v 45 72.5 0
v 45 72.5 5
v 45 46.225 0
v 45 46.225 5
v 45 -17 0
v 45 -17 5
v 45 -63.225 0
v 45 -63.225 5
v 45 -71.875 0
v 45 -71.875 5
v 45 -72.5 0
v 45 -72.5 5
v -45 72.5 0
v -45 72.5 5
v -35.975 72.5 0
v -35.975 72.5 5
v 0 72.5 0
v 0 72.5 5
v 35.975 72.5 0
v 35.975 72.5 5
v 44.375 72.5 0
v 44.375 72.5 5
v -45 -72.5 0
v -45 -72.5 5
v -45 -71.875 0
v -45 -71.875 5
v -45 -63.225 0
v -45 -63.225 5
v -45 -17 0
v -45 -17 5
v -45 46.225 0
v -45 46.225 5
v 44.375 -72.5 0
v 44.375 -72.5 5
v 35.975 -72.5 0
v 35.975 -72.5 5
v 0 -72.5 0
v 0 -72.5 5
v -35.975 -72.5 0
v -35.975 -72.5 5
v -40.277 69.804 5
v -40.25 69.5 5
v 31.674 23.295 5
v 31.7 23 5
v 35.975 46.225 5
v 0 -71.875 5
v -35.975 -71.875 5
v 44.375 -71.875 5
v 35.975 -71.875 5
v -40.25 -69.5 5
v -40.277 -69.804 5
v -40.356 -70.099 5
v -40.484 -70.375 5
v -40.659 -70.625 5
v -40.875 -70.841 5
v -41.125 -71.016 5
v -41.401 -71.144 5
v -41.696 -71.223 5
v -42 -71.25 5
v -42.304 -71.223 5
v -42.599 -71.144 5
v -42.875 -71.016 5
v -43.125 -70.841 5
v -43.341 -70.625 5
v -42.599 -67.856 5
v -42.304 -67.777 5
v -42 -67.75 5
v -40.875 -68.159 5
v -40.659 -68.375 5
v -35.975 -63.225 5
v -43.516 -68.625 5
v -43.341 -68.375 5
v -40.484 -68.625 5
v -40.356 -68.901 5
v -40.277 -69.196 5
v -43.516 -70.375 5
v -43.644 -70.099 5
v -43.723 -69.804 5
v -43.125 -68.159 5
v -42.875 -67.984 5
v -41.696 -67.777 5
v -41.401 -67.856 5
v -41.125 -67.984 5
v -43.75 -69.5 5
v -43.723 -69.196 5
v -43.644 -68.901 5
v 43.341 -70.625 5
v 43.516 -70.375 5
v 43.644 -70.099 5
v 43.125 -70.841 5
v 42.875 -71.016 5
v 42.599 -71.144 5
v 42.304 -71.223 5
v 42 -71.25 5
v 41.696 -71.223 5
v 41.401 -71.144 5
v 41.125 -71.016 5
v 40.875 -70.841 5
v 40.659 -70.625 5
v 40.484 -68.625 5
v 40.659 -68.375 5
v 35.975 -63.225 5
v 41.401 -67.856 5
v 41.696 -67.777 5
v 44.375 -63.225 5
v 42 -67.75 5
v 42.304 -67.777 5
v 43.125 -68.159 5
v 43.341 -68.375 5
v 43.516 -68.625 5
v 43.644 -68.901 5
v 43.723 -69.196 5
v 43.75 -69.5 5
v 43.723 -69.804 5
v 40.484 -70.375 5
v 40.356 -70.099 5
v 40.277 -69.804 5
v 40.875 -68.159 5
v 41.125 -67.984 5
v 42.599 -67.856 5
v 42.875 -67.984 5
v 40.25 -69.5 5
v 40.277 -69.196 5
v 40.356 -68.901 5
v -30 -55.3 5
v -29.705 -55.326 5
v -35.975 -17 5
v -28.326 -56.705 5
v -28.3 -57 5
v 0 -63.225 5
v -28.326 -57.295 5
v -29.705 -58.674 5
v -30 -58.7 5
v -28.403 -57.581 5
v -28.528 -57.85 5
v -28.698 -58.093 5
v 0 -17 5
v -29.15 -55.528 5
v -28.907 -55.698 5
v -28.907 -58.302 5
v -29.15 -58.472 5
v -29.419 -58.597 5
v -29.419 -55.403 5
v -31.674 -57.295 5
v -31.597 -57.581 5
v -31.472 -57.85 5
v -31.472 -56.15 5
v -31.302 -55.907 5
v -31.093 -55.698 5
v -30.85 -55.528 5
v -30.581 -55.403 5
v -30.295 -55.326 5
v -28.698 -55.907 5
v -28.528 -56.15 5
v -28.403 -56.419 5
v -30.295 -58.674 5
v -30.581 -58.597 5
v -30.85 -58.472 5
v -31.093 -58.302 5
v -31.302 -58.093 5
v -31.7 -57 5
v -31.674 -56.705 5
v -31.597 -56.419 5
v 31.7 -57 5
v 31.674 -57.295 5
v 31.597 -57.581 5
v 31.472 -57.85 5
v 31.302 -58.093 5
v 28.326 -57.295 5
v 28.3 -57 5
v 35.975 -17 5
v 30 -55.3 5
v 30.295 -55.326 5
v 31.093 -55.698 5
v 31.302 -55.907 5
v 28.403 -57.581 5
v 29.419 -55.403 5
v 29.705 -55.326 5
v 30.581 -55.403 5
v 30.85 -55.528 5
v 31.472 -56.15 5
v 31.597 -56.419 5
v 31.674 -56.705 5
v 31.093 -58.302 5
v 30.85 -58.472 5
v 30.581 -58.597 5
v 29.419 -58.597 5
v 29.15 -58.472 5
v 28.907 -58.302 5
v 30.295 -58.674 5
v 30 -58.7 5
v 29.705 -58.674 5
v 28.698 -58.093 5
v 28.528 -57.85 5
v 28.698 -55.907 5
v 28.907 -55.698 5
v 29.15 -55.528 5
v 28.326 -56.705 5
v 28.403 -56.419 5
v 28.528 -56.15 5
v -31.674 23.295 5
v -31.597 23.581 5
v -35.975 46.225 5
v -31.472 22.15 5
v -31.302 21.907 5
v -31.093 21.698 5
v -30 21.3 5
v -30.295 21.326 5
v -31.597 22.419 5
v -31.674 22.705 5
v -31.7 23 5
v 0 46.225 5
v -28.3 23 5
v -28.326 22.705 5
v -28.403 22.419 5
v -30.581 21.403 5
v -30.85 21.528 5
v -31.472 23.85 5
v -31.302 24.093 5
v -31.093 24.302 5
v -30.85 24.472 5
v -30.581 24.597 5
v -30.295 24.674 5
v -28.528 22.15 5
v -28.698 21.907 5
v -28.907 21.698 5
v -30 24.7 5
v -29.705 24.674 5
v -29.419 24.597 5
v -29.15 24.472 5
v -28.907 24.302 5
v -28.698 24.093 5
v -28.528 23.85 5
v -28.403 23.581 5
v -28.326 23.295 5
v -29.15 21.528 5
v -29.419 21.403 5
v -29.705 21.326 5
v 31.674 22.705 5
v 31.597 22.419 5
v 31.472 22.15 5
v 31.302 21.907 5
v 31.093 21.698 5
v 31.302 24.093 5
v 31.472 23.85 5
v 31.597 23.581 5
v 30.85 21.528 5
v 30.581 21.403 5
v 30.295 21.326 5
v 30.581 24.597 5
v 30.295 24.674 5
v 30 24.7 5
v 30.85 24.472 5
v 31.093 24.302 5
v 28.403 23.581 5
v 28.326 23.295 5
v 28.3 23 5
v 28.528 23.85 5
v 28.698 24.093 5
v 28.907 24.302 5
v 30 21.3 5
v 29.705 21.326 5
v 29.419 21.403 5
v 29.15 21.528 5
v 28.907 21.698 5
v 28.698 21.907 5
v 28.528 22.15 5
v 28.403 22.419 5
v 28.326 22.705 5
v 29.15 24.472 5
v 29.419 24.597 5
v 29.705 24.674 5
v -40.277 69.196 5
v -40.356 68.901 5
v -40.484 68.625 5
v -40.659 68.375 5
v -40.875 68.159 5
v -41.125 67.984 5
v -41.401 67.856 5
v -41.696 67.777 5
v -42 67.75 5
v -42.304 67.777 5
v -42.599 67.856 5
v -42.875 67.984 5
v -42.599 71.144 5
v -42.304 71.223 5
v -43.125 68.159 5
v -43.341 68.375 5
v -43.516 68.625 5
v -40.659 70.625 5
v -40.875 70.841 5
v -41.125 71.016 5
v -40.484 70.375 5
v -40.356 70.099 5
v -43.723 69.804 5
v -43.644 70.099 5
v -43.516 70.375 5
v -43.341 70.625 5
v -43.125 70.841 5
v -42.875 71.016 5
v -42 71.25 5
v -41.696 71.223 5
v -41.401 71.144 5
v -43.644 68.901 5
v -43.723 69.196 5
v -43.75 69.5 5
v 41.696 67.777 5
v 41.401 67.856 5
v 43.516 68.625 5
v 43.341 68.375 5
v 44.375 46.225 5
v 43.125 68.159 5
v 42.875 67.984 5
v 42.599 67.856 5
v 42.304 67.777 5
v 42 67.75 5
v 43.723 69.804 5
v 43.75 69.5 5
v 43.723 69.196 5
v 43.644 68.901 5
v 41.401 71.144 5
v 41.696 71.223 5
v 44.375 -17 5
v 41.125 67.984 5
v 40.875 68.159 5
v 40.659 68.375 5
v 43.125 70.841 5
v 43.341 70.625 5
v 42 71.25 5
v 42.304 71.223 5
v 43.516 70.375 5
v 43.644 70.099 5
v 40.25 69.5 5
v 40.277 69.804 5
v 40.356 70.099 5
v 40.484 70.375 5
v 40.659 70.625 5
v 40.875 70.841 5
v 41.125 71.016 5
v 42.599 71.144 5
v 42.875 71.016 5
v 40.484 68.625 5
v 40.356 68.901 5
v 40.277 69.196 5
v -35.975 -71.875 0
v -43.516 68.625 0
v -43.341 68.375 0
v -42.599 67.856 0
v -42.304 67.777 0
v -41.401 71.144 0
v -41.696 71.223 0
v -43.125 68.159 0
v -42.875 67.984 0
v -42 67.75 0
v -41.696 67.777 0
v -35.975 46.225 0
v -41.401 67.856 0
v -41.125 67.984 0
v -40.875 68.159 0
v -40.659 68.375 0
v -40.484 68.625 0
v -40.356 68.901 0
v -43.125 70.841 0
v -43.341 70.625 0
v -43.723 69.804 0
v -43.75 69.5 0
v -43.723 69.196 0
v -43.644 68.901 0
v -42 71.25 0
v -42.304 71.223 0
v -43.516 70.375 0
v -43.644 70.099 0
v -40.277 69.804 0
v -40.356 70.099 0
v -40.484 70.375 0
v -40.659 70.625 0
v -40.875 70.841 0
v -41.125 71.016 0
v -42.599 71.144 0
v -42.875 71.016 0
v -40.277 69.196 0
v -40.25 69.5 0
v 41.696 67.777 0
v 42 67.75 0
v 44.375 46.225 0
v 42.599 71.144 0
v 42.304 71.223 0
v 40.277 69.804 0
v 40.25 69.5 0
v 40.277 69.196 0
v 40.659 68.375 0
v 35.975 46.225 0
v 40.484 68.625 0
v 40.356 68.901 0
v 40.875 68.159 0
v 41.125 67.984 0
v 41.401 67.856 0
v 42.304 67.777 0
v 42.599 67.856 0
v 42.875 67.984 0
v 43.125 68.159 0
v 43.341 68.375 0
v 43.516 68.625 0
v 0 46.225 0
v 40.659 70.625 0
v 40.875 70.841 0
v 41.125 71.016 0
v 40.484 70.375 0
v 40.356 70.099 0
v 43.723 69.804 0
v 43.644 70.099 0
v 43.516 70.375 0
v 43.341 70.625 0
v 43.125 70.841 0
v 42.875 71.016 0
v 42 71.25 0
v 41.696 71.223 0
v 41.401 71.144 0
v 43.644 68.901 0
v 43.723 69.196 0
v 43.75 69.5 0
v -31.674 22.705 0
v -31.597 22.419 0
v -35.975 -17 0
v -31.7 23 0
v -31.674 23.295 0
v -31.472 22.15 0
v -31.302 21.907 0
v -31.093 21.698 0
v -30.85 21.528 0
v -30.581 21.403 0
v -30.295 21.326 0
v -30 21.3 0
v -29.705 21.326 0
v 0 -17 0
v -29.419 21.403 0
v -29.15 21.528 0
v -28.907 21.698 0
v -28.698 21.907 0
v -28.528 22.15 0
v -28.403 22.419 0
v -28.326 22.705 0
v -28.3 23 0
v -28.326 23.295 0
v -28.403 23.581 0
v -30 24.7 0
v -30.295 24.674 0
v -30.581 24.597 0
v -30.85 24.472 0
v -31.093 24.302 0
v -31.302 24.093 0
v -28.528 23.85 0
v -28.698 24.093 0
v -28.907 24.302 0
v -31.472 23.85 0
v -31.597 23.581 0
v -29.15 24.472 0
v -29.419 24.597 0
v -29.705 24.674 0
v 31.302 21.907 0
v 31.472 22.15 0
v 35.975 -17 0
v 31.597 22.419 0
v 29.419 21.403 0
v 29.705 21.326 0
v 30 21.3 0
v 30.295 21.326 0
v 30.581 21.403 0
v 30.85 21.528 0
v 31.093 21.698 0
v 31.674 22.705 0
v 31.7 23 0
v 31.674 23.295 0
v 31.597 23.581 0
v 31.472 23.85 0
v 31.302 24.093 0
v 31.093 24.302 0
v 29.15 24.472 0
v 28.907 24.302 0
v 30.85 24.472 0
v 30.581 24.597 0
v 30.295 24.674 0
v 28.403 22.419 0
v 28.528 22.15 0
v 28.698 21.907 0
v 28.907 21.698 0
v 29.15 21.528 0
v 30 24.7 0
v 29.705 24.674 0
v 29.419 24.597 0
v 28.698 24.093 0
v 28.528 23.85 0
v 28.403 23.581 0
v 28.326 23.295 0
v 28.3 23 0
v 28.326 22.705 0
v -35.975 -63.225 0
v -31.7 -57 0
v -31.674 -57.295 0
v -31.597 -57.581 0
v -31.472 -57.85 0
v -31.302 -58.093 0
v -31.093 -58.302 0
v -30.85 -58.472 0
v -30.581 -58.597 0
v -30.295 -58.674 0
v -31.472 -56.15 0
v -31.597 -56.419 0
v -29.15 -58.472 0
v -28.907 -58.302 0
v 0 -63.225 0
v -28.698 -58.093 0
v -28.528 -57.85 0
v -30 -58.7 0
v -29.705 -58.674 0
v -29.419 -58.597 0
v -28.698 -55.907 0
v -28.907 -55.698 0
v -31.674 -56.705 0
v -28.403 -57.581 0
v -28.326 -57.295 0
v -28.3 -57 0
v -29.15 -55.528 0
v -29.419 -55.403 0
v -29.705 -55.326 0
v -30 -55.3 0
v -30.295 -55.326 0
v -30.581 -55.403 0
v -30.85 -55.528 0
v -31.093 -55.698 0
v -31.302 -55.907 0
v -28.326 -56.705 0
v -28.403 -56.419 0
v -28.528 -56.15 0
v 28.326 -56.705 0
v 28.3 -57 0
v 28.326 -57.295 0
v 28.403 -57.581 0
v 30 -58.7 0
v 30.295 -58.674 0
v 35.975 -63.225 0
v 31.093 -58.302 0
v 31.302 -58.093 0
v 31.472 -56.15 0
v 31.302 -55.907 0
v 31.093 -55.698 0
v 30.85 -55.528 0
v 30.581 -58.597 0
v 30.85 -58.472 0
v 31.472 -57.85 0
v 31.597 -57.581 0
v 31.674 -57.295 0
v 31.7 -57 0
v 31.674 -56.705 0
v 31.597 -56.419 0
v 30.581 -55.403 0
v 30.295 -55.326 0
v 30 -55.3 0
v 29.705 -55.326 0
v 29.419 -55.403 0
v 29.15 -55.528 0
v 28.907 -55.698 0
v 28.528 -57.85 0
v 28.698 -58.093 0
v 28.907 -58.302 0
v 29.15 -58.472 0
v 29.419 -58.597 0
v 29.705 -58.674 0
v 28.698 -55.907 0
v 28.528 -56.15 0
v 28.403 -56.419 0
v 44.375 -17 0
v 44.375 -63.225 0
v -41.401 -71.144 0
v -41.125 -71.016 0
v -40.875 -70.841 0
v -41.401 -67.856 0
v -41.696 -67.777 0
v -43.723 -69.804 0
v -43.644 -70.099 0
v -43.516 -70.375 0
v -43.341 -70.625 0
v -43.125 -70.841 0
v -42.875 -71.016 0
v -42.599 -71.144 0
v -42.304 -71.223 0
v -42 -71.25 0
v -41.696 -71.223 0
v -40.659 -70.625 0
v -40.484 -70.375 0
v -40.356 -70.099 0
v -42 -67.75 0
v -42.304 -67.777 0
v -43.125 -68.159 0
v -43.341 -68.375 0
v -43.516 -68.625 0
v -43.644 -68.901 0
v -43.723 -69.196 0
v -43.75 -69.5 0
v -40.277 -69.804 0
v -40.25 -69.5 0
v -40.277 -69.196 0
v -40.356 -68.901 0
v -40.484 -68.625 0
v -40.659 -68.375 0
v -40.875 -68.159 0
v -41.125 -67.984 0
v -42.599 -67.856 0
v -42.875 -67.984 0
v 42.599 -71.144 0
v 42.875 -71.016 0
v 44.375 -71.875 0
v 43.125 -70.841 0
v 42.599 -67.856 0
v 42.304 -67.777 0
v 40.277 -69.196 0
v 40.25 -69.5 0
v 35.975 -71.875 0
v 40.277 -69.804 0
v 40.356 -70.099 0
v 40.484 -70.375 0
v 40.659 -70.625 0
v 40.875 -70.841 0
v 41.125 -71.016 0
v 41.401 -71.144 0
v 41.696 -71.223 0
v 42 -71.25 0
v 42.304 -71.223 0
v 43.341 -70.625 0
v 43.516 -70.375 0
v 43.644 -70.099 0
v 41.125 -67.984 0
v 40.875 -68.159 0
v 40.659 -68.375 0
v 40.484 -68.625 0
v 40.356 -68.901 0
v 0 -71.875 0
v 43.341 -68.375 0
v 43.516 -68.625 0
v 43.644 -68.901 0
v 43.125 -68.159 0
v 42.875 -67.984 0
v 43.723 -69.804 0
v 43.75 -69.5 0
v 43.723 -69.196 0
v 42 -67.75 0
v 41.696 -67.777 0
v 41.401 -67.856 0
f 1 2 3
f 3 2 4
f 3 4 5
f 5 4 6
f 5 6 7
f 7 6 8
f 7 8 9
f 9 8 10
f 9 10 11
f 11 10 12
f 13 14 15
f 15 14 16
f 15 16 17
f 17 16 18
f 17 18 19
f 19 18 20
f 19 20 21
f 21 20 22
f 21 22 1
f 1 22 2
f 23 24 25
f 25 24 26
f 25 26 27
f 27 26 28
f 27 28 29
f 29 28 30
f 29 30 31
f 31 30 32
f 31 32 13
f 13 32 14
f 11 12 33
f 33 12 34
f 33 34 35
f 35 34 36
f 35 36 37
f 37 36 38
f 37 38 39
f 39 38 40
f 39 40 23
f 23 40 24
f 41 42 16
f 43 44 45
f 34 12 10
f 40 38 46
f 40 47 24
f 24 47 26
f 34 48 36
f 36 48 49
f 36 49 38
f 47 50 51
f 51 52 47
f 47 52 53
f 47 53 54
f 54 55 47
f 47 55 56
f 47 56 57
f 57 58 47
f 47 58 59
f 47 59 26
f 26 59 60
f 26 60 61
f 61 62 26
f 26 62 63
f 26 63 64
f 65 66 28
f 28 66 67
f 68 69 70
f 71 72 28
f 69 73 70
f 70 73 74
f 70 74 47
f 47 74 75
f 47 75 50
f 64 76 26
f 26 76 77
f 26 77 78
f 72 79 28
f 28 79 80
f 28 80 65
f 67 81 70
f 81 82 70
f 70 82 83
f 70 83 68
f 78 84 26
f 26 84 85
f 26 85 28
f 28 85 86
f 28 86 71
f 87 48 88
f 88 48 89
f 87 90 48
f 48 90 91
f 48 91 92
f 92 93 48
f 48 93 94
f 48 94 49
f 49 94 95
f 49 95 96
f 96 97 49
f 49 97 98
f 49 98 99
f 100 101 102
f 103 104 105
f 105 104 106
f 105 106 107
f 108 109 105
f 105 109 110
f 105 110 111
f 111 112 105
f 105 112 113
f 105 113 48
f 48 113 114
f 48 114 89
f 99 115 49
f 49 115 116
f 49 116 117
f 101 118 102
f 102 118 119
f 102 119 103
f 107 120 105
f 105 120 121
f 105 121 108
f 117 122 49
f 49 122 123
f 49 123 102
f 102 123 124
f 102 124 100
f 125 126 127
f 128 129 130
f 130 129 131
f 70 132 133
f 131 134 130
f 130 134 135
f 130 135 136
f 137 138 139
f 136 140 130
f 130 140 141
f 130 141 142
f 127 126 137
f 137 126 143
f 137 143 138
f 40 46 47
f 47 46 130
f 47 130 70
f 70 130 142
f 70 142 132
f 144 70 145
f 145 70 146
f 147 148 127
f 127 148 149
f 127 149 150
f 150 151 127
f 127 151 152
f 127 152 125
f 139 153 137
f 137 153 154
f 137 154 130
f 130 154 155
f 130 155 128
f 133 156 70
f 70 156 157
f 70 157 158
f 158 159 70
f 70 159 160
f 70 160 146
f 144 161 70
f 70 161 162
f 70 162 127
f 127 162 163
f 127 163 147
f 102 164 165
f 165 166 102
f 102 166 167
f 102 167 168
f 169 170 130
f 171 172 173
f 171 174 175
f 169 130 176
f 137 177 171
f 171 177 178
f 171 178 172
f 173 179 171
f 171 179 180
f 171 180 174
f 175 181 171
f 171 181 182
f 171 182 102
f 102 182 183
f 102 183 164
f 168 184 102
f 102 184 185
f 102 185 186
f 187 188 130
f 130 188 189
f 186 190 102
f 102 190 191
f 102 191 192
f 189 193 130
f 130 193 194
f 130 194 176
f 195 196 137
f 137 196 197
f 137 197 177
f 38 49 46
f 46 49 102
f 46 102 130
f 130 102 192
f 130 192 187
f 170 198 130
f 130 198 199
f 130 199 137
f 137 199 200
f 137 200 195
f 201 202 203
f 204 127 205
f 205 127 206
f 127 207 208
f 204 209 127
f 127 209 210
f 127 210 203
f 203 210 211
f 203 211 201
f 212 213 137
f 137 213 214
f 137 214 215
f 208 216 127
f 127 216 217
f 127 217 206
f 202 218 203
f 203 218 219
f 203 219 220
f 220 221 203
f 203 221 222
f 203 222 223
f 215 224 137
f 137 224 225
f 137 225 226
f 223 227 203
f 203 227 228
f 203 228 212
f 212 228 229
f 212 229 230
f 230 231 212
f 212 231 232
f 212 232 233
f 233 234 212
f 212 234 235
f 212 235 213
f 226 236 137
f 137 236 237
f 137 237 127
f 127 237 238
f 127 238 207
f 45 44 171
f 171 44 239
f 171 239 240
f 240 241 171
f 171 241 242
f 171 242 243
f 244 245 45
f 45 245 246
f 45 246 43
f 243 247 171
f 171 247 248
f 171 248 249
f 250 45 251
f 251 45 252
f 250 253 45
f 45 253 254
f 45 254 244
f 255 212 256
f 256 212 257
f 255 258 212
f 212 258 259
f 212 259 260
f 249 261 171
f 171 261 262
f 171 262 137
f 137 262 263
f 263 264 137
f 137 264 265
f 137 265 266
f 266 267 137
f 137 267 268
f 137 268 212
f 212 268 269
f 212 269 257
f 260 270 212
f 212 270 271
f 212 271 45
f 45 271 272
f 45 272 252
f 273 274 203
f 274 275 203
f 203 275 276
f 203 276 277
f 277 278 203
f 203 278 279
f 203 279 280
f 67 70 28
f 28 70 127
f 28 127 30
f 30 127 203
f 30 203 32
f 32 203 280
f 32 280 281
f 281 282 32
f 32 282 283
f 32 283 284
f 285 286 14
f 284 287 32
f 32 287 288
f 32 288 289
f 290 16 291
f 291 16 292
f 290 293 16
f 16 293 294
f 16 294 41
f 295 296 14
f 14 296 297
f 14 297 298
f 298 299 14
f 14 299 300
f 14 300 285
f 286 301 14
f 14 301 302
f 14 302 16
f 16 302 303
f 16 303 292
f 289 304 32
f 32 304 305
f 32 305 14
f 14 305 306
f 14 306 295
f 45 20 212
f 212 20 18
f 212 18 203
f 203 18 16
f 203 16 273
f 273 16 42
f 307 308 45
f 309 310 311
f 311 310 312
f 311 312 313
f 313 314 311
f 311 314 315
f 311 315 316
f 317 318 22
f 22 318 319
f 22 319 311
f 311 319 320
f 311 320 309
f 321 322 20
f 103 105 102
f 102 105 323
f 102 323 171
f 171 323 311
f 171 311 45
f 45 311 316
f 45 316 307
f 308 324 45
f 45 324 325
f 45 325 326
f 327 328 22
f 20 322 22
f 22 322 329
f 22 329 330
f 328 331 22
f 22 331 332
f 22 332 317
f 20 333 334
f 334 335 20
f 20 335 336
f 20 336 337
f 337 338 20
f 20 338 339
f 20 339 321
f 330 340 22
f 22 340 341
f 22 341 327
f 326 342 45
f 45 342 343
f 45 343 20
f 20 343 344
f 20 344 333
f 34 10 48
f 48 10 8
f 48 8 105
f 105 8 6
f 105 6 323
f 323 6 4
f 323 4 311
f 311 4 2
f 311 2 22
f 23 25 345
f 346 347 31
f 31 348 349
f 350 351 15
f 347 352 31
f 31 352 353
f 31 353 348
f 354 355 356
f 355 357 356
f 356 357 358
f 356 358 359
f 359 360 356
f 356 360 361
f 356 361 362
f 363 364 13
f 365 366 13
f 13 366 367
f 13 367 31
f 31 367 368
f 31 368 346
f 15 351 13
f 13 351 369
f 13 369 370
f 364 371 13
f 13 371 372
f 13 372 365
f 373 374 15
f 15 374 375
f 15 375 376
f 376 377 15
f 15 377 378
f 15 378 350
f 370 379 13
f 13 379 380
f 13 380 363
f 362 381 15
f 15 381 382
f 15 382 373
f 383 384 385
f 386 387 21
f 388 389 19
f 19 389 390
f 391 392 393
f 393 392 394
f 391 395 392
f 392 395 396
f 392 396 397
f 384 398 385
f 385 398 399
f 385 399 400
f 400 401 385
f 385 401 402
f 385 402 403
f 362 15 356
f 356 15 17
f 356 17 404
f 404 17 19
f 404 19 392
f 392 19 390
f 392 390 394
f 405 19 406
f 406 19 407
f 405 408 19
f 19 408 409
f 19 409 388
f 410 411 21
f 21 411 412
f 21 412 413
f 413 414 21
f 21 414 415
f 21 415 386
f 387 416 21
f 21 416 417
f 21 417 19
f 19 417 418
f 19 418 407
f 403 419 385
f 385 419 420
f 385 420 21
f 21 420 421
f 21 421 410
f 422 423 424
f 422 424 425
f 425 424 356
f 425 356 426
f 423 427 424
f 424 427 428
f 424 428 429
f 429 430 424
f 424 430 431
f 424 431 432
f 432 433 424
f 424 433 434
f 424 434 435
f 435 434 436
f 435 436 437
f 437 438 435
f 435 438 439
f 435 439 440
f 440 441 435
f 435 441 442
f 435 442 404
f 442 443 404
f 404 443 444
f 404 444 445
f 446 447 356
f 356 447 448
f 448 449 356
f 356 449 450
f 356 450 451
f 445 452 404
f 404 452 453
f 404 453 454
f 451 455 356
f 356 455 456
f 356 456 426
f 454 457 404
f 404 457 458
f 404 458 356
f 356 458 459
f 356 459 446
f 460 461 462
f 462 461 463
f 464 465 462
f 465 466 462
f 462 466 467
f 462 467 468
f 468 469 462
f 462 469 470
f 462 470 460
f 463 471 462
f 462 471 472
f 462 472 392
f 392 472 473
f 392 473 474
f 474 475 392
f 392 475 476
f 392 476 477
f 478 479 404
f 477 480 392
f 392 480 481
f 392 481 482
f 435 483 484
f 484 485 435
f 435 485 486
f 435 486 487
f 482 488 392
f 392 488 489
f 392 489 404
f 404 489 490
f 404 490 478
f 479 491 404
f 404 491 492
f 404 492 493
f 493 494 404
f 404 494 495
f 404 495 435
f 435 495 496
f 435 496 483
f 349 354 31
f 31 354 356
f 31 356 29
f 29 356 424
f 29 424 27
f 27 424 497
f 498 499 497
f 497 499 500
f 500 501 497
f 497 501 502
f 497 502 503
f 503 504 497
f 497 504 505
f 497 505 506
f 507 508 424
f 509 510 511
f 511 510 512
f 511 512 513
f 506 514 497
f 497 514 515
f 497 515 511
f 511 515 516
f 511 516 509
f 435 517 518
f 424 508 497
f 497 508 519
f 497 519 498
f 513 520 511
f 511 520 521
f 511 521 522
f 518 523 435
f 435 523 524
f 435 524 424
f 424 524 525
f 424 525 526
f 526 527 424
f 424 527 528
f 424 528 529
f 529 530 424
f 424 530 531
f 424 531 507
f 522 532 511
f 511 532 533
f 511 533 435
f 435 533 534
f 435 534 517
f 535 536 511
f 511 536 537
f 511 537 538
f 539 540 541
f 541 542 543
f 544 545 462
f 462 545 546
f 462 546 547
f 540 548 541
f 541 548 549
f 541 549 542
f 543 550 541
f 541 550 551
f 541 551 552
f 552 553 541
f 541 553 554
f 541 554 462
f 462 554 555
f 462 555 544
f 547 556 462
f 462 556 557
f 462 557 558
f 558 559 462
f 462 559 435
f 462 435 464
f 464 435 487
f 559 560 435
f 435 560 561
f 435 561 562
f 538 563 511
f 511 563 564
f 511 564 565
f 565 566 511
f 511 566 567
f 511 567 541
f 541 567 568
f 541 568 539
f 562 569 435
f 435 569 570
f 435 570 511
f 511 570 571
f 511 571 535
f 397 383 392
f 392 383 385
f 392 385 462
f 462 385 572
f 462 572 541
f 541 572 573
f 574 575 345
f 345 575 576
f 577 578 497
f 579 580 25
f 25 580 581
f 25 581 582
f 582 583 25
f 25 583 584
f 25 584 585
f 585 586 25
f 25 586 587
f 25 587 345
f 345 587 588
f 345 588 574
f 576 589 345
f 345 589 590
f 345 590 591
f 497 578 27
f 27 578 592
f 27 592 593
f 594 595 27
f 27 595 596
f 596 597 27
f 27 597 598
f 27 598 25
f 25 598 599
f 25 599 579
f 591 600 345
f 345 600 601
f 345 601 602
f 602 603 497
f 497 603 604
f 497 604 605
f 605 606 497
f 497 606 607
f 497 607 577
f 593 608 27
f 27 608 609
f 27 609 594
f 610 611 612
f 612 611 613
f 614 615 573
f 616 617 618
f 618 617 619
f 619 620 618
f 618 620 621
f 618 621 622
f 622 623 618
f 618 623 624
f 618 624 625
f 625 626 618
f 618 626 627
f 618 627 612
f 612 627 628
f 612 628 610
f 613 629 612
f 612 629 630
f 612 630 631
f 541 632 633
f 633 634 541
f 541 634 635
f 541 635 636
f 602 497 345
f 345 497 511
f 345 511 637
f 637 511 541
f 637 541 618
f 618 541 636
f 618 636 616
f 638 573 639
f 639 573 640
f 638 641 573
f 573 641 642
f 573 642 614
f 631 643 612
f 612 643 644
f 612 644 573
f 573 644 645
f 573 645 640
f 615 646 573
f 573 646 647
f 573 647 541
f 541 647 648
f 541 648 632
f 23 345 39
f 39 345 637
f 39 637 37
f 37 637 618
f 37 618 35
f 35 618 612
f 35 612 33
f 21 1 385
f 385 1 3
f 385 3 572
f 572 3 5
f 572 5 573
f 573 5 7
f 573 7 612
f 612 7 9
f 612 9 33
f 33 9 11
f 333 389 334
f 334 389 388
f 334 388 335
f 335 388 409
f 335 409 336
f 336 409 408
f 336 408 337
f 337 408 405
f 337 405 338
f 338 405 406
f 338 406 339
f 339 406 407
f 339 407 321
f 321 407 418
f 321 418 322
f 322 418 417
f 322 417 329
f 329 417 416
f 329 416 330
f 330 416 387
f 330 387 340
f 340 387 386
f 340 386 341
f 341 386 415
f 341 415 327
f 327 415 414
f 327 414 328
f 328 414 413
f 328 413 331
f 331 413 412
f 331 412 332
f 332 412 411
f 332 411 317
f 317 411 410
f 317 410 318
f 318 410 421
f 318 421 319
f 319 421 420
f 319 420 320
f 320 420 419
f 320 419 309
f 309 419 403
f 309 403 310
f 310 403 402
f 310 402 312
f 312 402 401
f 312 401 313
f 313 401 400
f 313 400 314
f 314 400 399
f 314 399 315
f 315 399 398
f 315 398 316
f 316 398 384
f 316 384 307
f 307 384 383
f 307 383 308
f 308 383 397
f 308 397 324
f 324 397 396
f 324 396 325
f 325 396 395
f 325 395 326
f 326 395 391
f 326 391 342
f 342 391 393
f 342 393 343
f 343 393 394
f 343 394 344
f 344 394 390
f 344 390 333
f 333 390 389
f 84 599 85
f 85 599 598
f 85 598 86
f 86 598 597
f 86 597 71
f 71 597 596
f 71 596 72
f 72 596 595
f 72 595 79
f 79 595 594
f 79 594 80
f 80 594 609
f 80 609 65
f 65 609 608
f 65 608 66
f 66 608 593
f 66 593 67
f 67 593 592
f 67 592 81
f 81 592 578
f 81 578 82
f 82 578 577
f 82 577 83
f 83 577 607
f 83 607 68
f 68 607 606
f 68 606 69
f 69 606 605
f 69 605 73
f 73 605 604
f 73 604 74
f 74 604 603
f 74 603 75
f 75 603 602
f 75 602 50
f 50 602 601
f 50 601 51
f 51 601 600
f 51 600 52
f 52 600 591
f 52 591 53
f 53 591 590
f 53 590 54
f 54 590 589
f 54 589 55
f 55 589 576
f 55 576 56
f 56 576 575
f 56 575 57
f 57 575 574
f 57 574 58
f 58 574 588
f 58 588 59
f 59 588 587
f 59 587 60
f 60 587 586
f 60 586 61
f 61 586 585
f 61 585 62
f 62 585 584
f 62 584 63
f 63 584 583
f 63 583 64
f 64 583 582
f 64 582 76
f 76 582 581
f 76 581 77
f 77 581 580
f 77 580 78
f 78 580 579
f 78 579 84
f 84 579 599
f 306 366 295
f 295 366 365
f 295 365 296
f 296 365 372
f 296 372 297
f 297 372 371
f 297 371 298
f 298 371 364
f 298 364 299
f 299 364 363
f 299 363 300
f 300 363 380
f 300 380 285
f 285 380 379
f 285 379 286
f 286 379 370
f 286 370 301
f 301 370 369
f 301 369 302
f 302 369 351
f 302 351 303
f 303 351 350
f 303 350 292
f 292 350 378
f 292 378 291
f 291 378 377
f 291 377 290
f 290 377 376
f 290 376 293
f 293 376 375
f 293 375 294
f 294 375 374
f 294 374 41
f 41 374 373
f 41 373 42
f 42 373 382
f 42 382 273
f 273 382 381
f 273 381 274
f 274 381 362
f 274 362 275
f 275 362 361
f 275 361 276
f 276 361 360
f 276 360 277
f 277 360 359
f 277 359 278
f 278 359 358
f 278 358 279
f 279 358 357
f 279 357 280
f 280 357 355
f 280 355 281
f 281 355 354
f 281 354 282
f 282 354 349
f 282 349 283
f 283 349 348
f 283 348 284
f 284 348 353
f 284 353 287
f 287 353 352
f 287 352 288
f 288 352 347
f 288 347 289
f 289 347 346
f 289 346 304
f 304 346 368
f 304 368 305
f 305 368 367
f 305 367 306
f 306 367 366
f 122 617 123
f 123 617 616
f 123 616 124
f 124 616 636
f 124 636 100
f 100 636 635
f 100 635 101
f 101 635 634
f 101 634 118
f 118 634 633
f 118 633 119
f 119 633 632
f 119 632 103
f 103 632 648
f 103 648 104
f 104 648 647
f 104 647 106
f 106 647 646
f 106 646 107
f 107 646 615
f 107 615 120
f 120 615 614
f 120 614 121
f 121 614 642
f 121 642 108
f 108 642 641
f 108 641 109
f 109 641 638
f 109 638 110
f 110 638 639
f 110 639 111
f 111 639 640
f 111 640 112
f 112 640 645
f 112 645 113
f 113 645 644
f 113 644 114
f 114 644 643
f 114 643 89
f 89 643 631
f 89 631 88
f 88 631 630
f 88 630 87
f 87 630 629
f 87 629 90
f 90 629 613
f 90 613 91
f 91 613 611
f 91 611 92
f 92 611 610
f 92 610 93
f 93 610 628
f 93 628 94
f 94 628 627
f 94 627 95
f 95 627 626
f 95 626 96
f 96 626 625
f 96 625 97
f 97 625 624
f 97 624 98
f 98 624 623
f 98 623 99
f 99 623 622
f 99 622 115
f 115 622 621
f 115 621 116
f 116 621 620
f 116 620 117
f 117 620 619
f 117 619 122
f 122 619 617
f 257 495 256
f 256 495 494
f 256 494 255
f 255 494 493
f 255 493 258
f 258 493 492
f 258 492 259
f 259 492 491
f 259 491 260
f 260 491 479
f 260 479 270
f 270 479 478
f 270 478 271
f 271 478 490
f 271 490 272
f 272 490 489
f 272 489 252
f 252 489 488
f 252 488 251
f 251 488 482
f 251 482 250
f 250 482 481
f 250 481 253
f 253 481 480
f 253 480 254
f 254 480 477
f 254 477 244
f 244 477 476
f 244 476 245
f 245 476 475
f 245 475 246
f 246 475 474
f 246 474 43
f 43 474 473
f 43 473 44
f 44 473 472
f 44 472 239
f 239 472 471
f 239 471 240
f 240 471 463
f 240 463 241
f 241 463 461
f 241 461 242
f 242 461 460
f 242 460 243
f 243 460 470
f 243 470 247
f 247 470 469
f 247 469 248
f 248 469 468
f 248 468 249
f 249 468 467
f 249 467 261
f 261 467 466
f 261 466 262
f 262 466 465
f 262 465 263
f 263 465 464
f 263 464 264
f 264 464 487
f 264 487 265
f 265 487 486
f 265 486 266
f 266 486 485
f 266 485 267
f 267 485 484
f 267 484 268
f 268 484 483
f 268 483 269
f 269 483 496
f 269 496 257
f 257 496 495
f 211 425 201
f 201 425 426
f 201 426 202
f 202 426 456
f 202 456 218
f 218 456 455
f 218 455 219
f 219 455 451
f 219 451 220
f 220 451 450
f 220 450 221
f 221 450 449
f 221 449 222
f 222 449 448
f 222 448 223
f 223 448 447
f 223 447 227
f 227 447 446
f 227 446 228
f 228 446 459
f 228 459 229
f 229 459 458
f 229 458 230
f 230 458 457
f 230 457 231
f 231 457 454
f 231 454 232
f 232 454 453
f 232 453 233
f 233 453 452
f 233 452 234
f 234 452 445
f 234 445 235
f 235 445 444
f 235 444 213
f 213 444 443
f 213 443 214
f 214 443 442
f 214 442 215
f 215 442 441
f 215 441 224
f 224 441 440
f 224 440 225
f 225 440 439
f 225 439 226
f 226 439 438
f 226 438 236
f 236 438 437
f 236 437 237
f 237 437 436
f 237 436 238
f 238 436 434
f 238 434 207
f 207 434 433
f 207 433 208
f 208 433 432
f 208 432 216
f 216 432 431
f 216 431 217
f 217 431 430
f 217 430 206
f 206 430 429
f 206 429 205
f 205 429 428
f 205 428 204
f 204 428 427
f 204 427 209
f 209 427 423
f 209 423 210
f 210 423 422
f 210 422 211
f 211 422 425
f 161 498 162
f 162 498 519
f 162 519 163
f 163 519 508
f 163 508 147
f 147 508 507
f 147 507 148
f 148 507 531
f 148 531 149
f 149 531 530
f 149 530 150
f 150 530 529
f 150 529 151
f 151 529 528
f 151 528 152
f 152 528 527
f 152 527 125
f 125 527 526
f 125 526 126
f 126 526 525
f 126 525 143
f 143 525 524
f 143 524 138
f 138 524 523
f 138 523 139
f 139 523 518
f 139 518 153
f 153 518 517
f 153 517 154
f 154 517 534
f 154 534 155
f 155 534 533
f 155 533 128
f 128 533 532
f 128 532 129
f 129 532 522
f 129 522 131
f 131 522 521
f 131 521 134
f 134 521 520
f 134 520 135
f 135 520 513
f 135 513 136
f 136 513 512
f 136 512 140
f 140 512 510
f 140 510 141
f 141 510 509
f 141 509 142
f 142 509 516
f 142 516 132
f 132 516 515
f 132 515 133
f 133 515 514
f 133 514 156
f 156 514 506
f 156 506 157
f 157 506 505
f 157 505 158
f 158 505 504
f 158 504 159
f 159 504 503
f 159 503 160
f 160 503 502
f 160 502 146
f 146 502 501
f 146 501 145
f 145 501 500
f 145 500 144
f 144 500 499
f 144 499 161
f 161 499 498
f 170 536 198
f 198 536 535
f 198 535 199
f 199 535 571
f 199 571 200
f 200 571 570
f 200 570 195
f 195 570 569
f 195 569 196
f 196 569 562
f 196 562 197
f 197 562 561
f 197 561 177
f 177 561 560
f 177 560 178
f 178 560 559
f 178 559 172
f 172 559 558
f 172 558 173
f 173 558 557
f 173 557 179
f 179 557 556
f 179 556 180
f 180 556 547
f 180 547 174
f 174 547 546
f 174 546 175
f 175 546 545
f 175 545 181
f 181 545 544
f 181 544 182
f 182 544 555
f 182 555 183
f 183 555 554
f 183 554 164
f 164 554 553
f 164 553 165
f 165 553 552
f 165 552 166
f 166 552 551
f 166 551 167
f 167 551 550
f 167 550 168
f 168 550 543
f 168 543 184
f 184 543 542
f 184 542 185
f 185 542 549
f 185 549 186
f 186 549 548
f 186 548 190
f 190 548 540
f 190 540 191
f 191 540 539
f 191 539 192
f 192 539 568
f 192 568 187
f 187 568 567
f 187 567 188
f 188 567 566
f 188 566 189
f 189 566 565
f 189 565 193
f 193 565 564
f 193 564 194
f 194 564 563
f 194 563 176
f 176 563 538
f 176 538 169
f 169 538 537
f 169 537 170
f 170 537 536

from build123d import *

# Parameters (mm, degrees)
SKETCH1_W           = 90
SKETCH1_H           = 145
BOSS_EXTRUDE1_DEPTH = 5
SKETCH2_R           = 1.75
CUT_EXTRUDE1_DEPTH  = 86.476604986
SKETCH3_R           = 1.7
CUT_EXTRUDE2_DEPTH  = 86.476604986


with BuildPart() as part:
    # Sketch1 → Boss-Extrude1 (new body)
    with BuildSketch(Plane.XY):
        Rectangle(SKETCH1_W, SKETCH1_H)
    extrude(amount=BOSS_EXTRUDE1_DEPTH)

    # Sketch2 → Cut-Extrude1 (cut, through all)
    with BuildSketch(Plane(origin=(0, 0, 0), x_dir=(-1, 0, 0), z_dir=(0, 0, -1))):
        with Locations((-42, 69.5)):
            Circle(SKETCH2_R)
        with Locations(Location((-42, -69.5, 0), (0, 0, 180))):
            Circle(SKETCH2_R)
        with Locations(Location((42, 69.5, 0), (0, 0, 180))):
            Circle(SKETCH2_R)
        with Locations((42, -69.5)):
            Circle(SKETCH2_R)
    extrude(amount=-CUT_EXTRUDE1_DEPTH, mode=Mode.SUBTRACT)

    # Sketch3 → Cut-Extrude2 (cut, through all)
    with BuildSketch(Plane(origin=(0, 0, 0), x_dir=(-1, 0, 0), z_dir=(0, 0, -1))):
        with Locations((-30, 23)):
            Circle(SKETCH3_R)
        with Locations(Location((30, 23, 0), (0, 0, 180))):
            Circle(SKETCH3_R)
        with Locations((30, -57)):
            Circle(SKETCH3_R)
        with Locations(Location((-30, -57, 0), (0, 0, 180))):
            Circle(SKETCH3_R)
    extrude(amount=-CUT_EXTRUDE2_DEPTH, mode=Mode.SUBTRACT)


solid = part.part
